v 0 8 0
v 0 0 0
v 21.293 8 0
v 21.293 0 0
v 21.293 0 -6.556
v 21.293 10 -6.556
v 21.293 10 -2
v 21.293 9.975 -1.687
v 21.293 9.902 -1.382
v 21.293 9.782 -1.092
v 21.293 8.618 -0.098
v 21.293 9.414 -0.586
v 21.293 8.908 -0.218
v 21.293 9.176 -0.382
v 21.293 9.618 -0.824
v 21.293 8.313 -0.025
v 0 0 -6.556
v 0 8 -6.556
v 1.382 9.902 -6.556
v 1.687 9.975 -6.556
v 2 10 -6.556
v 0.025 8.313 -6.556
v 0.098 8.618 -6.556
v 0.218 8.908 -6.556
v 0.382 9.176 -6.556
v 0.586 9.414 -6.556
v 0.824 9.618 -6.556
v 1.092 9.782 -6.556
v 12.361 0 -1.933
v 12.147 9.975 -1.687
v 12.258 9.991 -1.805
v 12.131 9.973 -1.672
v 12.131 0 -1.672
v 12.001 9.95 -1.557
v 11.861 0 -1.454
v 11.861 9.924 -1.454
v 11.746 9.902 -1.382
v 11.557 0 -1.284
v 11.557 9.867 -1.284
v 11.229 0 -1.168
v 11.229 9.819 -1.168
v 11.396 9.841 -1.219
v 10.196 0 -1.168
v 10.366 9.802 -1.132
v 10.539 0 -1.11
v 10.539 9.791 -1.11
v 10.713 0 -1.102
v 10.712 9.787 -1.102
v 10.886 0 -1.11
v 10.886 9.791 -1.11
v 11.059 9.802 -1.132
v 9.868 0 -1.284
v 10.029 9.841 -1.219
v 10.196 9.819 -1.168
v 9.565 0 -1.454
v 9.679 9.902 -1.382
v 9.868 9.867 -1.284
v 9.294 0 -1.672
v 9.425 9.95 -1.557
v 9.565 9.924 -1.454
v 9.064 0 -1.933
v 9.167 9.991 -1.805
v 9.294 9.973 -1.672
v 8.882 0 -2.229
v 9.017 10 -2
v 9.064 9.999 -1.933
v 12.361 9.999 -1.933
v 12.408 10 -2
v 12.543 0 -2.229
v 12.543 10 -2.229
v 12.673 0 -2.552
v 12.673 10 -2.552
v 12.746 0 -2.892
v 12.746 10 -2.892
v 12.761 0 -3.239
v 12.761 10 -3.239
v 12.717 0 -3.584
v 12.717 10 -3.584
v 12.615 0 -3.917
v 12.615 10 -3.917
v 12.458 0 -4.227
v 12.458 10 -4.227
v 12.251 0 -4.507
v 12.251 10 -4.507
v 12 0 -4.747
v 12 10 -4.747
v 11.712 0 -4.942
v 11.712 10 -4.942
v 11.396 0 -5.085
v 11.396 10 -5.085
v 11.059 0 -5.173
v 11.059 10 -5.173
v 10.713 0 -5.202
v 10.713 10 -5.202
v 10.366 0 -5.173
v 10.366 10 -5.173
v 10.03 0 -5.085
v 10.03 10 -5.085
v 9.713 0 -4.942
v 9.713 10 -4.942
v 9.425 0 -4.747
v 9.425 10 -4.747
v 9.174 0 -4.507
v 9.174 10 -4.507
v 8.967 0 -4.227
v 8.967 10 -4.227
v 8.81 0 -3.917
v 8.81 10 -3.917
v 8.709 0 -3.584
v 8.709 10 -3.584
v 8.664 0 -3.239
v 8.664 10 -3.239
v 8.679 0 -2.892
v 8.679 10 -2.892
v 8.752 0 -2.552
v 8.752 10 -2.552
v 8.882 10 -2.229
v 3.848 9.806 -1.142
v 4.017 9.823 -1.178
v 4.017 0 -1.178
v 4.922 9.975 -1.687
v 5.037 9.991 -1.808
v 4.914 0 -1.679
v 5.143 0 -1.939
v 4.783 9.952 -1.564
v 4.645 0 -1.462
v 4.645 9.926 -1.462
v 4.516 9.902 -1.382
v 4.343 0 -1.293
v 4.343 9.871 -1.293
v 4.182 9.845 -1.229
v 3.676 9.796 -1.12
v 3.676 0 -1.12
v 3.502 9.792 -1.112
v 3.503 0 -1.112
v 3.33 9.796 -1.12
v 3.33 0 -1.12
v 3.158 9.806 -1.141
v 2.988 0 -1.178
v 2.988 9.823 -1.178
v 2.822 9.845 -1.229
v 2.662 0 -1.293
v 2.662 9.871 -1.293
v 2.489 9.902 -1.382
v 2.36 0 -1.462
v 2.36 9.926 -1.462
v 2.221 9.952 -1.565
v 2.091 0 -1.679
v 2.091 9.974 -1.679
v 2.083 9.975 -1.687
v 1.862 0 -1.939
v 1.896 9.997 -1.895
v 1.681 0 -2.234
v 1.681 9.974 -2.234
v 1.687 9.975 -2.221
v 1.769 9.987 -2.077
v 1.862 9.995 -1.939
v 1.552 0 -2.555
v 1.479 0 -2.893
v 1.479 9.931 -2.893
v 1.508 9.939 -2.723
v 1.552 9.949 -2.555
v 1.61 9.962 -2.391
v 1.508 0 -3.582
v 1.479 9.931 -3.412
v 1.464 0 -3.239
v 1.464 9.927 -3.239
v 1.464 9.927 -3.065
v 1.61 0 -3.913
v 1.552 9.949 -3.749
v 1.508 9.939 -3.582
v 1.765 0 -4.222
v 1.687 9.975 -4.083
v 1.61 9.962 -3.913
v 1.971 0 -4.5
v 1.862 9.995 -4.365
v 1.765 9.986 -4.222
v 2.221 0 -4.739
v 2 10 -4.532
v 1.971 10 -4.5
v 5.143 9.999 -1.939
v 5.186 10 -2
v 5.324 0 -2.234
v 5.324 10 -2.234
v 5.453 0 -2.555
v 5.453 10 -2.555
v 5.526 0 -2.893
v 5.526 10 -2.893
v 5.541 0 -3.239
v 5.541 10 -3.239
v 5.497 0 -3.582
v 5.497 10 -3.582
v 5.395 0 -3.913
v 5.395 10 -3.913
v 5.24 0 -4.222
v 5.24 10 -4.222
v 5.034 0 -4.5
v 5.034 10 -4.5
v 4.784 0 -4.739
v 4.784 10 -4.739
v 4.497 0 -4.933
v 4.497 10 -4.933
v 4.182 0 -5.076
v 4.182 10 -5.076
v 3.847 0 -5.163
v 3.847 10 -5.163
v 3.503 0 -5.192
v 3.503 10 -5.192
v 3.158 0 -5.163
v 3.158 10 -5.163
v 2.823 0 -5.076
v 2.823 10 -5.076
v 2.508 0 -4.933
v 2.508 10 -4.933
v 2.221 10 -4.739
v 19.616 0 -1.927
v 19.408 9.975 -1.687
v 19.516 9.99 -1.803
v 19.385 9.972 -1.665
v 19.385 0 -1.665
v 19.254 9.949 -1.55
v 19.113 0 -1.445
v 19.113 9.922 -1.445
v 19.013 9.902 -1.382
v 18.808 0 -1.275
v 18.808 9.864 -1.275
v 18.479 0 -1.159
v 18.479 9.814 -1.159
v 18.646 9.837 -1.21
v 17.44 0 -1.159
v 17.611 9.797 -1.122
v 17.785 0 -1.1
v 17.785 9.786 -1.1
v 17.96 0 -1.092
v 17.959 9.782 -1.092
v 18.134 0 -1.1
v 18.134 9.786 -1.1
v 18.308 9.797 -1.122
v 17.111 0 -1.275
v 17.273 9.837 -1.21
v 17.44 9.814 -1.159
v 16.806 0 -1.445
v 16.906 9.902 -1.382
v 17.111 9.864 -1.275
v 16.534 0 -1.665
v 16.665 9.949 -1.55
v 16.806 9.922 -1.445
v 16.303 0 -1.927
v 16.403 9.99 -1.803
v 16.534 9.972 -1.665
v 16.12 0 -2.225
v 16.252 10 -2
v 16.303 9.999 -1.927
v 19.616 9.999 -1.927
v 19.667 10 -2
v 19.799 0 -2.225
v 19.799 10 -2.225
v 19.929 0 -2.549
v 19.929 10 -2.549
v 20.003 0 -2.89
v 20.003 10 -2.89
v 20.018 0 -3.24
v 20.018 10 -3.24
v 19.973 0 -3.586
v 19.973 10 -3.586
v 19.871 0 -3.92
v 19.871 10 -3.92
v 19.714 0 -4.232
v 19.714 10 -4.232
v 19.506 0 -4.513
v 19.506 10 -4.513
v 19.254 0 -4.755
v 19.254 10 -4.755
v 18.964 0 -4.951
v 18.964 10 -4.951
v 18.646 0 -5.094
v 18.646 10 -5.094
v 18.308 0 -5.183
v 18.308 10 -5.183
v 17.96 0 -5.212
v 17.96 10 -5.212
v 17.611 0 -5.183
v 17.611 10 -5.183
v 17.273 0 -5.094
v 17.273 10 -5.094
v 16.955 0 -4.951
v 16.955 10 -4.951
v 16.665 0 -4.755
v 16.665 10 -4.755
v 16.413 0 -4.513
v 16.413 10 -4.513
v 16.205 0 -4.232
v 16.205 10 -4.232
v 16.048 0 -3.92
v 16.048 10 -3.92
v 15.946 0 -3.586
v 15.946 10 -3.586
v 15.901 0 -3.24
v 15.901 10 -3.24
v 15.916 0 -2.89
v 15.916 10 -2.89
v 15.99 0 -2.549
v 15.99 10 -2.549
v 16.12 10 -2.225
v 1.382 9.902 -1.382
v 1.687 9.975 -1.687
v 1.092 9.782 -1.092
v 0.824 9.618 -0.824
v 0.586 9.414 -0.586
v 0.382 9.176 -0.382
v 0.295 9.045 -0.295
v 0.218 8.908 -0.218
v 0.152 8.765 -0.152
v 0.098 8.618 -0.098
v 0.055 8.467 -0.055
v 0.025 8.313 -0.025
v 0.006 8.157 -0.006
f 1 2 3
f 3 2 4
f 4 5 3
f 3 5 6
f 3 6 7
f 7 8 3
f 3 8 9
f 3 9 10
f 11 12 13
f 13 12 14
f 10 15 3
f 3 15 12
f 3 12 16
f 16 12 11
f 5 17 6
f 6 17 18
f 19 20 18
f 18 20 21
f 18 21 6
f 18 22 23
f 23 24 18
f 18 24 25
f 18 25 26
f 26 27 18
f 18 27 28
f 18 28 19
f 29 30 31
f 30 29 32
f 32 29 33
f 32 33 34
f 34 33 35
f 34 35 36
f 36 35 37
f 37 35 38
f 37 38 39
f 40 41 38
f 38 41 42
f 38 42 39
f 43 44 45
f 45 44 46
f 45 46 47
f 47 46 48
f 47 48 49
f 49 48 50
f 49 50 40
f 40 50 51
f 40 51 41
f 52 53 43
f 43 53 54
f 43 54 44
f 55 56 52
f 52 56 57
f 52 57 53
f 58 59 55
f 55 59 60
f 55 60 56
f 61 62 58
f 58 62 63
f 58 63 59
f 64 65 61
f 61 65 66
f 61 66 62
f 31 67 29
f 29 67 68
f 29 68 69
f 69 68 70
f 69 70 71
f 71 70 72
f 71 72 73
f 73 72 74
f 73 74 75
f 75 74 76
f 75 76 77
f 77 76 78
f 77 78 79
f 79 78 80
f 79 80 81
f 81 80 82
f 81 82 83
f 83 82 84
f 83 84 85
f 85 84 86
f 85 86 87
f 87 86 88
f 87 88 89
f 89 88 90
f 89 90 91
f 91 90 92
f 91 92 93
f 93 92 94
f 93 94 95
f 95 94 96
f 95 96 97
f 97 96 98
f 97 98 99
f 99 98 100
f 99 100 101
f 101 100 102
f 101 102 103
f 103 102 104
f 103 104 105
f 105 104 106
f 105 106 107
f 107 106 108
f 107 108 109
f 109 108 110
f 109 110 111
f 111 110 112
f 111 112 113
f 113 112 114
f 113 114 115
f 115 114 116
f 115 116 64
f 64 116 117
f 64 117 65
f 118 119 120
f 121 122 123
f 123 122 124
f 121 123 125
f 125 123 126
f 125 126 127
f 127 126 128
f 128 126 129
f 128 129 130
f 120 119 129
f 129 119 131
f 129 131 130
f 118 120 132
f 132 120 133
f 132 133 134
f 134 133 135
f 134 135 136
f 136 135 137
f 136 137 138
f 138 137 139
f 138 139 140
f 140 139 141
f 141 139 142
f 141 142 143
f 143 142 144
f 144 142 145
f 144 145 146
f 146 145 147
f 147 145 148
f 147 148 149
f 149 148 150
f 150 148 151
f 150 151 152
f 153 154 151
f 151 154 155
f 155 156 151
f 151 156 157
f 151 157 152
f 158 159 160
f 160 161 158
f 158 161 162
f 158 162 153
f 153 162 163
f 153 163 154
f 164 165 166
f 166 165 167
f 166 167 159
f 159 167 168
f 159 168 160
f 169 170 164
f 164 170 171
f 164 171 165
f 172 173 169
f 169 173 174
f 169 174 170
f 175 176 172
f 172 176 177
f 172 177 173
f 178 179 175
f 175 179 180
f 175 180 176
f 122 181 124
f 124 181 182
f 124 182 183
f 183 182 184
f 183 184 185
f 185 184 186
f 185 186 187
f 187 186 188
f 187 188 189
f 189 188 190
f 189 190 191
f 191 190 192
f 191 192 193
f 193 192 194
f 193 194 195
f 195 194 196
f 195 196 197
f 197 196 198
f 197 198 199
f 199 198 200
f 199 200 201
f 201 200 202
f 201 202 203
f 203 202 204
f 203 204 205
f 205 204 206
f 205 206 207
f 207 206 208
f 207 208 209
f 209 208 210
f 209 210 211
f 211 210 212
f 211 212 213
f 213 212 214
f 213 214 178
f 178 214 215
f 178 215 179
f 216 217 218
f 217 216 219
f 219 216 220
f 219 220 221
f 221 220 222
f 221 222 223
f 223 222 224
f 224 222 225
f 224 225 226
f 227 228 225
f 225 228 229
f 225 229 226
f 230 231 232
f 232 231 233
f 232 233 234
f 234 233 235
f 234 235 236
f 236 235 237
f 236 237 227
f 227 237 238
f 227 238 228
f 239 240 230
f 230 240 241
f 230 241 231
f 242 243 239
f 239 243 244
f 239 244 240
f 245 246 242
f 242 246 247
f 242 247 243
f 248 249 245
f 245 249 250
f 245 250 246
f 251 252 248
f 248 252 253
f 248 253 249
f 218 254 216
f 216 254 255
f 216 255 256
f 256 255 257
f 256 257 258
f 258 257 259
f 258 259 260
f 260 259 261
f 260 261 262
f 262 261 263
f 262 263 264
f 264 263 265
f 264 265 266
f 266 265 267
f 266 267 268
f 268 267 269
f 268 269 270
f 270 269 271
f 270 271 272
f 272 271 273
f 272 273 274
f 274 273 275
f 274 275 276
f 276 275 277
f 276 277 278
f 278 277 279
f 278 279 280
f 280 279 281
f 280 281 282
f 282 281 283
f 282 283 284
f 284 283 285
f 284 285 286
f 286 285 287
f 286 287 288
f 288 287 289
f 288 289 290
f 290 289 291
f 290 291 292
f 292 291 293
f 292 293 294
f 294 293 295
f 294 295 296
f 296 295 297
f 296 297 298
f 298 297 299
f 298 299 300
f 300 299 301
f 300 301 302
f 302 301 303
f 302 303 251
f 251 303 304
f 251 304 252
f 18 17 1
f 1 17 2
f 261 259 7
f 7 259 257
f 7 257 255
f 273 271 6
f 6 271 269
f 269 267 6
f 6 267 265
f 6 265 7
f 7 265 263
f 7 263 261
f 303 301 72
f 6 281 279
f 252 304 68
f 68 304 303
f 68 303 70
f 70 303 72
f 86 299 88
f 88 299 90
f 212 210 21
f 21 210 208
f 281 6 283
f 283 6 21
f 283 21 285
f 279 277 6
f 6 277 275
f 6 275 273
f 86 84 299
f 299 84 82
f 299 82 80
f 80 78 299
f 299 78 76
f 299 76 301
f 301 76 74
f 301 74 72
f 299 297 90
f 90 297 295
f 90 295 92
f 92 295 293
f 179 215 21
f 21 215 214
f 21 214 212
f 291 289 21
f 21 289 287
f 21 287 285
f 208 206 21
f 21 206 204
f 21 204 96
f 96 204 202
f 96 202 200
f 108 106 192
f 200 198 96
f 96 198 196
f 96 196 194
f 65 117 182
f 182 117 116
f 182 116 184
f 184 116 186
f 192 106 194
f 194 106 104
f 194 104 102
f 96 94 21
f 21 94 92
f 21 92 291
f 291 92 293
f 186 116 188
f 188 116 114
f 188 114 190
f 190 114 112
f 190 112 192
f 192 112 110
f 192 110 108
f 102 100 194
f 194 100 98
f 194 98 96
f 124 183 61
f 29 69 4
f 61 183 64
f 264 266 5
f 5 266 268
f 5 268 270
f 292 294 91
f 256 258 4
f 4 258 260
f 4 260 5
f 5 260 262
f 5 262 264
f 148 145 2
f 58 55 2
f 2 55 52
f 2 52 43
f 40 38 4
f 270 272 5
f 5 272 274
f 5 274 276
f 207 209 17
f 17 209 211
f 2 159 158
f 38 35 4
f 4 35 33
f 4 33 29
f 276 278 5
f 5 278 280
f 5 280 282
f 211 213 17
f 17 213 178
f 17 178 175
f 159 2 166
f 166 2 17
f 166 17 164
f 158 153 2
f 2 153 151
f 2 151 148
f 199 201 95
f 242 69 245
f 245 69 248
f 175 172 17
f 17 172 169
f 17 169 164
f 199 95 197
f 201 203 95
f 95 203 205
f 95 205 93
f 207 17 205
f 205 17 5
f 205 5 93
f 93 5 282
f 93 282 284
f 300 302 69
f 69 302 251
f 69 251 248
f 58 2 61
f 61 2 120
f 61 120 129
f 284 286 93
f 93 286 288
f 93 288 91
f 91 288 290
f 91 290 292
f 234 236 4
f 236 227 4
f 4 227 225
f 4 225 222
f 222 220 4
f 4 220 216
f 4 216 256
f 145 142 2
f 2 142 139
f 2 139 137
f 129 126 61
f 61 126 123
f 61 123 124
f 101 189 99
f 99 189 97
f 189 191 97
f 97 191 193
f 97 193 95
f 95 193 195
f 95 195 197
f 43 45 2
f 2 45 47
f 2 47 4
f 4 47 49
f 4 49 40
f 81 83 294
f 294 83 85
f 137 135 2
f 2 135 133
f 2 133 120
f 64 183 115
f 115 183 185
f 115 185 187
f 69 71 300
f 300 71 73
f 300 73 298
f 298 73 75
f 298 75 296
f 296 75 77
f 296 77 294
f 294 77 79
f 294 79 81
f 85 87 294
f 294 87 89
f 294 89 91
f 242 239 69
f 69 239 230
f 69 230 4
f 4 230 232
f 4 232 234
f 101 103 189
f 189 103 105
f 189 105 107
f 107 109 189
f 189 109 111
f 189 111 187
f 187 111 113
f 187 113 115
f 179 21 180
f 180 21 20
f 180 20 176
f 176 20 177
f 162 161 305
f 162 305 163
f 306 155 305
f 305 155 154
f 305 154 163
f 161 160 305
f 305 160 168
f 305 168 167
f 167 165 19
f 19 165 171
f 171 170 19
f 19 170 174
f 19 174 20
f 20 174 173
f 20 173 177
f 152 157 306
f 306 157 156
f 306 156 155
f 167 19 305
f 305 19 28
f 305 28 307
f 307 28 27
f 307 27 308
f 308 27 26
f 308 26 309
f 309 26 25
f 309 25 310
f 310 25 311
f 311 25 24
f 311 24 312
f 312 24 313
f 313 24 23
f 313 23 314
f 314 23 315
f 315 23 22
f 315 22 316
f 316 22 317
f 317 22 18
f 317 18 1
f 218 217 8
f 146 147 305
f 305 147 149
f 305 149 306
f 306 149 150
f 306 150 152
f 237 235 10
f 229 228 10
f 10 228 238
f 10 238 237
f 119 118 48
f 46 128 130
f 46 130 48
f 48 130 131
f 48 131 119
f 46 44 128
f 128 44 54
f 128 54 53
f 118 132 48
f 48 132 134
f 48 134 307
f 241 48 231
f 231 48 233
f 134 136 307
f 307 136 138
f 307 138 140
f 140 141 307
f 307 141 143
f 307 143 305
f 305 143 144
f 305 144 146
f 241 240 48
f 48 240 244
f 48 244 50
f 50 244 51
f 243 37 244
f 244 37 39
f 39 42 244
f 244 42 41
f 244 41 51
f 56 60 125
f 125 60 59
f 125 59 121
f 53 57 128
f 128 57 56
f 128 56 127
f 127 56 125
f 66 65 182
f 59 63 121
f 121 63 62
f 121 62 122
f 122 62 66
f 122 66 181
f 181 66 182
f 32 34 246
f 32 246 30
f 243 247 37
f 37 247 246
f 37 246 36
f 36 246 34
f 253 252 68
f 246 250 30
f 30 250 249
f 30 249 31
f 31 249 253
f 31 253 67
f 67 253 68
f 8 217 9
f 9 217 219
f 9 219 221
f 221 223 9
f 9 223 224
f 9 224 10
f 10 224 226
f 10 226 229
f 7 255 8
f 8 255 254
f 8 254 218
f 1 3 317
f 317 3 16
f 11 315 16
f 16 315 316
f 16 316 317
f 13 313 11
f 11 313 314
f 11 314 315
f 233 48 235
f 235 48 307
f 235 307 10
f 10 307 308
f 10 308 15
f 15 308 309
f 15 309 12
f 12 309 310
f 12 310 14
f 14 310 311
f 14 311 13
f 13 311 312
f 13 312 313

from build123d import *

# Parameters (mm, degrees)
SKETCH1_W           = 21.293186277
SKETCH1_H           = 6.556248908
SKETCH1_R           = 2.06
SKETCH1_R_2         = 2.04
SKETCH1_R_3         = 2.05
BOSS_EXTRUDE1_DEPTH = 10
FILLET1_R           = 2


with BuildPart() as part:
    # Sketch1 → Boss-Extrude1 (new body)
    with BuildSketch(Plane(origin=(0, 0, 0), x_dir=(1, 0, 0), z_dir=(0, 1, 0))):
        with Locations((10.646593139, 3.278124454)):
            Rectangle(SKETCH1_W, SKETCH1_H)
        with Locations(Location((17.959518774, 3.152151811, 0), (0, 0, 270))):
            Circle(SKETCH1_R, mode=Mode.SUBTRACT)
        with Locations(Location((3.502477391, 3.152151811, 0), (0, 0, 270))):
            Circle(SKETCH1_R_2, mode=Mode.SUBTRACT)
        with Locations(Location((10.712545691, 3.152151811, 0), (0, 0, 270))):
            Circle(SKETCH1_R_3, mode=Mode.SUBTRACT)
    extrude(amount=BOSS_EXTRUDE1_DEPTH)

    # Fillet1
    # the kernel refuses this fillet: 2 mm, written as the material it takes off along each edge
    with BuildSketch(Plane(origin=(-5, 10, 0), x_dir=(0, -1, 0), z_dir=(1, 0, 0))) as fillet1_piece_1:
        with BuildLine():
            CenterArc((FILLET1_R, FILLET1_R), FILLET1_R, 180, 90)
            Line((0, FILLET1_R), (0, 0))
            Line((0, 0), (FILLET1_R, 0))
        make_face()
    extrude(amount=31.293186277, mode=Mode.SUBTRACT)
    with BuildSketch(Plane(origin=(0, 10, -11.556248908), x_dir=(0, -1, 0), z_dir=(0, 0, 1))) as fillet1_piece_2:
        with BuildLine():
            CenterArc((FILLET1_R, FILLET1_R), FILLET1_R, 180, 90)
            Line((0, FILLET1_R), (0, 0))
            Line((0, 0), (FILLET1_R, 0))
        make_face()
    extrude(amount=16.556248908, mode=Mode.SUBTRACT)


solid = part.part
